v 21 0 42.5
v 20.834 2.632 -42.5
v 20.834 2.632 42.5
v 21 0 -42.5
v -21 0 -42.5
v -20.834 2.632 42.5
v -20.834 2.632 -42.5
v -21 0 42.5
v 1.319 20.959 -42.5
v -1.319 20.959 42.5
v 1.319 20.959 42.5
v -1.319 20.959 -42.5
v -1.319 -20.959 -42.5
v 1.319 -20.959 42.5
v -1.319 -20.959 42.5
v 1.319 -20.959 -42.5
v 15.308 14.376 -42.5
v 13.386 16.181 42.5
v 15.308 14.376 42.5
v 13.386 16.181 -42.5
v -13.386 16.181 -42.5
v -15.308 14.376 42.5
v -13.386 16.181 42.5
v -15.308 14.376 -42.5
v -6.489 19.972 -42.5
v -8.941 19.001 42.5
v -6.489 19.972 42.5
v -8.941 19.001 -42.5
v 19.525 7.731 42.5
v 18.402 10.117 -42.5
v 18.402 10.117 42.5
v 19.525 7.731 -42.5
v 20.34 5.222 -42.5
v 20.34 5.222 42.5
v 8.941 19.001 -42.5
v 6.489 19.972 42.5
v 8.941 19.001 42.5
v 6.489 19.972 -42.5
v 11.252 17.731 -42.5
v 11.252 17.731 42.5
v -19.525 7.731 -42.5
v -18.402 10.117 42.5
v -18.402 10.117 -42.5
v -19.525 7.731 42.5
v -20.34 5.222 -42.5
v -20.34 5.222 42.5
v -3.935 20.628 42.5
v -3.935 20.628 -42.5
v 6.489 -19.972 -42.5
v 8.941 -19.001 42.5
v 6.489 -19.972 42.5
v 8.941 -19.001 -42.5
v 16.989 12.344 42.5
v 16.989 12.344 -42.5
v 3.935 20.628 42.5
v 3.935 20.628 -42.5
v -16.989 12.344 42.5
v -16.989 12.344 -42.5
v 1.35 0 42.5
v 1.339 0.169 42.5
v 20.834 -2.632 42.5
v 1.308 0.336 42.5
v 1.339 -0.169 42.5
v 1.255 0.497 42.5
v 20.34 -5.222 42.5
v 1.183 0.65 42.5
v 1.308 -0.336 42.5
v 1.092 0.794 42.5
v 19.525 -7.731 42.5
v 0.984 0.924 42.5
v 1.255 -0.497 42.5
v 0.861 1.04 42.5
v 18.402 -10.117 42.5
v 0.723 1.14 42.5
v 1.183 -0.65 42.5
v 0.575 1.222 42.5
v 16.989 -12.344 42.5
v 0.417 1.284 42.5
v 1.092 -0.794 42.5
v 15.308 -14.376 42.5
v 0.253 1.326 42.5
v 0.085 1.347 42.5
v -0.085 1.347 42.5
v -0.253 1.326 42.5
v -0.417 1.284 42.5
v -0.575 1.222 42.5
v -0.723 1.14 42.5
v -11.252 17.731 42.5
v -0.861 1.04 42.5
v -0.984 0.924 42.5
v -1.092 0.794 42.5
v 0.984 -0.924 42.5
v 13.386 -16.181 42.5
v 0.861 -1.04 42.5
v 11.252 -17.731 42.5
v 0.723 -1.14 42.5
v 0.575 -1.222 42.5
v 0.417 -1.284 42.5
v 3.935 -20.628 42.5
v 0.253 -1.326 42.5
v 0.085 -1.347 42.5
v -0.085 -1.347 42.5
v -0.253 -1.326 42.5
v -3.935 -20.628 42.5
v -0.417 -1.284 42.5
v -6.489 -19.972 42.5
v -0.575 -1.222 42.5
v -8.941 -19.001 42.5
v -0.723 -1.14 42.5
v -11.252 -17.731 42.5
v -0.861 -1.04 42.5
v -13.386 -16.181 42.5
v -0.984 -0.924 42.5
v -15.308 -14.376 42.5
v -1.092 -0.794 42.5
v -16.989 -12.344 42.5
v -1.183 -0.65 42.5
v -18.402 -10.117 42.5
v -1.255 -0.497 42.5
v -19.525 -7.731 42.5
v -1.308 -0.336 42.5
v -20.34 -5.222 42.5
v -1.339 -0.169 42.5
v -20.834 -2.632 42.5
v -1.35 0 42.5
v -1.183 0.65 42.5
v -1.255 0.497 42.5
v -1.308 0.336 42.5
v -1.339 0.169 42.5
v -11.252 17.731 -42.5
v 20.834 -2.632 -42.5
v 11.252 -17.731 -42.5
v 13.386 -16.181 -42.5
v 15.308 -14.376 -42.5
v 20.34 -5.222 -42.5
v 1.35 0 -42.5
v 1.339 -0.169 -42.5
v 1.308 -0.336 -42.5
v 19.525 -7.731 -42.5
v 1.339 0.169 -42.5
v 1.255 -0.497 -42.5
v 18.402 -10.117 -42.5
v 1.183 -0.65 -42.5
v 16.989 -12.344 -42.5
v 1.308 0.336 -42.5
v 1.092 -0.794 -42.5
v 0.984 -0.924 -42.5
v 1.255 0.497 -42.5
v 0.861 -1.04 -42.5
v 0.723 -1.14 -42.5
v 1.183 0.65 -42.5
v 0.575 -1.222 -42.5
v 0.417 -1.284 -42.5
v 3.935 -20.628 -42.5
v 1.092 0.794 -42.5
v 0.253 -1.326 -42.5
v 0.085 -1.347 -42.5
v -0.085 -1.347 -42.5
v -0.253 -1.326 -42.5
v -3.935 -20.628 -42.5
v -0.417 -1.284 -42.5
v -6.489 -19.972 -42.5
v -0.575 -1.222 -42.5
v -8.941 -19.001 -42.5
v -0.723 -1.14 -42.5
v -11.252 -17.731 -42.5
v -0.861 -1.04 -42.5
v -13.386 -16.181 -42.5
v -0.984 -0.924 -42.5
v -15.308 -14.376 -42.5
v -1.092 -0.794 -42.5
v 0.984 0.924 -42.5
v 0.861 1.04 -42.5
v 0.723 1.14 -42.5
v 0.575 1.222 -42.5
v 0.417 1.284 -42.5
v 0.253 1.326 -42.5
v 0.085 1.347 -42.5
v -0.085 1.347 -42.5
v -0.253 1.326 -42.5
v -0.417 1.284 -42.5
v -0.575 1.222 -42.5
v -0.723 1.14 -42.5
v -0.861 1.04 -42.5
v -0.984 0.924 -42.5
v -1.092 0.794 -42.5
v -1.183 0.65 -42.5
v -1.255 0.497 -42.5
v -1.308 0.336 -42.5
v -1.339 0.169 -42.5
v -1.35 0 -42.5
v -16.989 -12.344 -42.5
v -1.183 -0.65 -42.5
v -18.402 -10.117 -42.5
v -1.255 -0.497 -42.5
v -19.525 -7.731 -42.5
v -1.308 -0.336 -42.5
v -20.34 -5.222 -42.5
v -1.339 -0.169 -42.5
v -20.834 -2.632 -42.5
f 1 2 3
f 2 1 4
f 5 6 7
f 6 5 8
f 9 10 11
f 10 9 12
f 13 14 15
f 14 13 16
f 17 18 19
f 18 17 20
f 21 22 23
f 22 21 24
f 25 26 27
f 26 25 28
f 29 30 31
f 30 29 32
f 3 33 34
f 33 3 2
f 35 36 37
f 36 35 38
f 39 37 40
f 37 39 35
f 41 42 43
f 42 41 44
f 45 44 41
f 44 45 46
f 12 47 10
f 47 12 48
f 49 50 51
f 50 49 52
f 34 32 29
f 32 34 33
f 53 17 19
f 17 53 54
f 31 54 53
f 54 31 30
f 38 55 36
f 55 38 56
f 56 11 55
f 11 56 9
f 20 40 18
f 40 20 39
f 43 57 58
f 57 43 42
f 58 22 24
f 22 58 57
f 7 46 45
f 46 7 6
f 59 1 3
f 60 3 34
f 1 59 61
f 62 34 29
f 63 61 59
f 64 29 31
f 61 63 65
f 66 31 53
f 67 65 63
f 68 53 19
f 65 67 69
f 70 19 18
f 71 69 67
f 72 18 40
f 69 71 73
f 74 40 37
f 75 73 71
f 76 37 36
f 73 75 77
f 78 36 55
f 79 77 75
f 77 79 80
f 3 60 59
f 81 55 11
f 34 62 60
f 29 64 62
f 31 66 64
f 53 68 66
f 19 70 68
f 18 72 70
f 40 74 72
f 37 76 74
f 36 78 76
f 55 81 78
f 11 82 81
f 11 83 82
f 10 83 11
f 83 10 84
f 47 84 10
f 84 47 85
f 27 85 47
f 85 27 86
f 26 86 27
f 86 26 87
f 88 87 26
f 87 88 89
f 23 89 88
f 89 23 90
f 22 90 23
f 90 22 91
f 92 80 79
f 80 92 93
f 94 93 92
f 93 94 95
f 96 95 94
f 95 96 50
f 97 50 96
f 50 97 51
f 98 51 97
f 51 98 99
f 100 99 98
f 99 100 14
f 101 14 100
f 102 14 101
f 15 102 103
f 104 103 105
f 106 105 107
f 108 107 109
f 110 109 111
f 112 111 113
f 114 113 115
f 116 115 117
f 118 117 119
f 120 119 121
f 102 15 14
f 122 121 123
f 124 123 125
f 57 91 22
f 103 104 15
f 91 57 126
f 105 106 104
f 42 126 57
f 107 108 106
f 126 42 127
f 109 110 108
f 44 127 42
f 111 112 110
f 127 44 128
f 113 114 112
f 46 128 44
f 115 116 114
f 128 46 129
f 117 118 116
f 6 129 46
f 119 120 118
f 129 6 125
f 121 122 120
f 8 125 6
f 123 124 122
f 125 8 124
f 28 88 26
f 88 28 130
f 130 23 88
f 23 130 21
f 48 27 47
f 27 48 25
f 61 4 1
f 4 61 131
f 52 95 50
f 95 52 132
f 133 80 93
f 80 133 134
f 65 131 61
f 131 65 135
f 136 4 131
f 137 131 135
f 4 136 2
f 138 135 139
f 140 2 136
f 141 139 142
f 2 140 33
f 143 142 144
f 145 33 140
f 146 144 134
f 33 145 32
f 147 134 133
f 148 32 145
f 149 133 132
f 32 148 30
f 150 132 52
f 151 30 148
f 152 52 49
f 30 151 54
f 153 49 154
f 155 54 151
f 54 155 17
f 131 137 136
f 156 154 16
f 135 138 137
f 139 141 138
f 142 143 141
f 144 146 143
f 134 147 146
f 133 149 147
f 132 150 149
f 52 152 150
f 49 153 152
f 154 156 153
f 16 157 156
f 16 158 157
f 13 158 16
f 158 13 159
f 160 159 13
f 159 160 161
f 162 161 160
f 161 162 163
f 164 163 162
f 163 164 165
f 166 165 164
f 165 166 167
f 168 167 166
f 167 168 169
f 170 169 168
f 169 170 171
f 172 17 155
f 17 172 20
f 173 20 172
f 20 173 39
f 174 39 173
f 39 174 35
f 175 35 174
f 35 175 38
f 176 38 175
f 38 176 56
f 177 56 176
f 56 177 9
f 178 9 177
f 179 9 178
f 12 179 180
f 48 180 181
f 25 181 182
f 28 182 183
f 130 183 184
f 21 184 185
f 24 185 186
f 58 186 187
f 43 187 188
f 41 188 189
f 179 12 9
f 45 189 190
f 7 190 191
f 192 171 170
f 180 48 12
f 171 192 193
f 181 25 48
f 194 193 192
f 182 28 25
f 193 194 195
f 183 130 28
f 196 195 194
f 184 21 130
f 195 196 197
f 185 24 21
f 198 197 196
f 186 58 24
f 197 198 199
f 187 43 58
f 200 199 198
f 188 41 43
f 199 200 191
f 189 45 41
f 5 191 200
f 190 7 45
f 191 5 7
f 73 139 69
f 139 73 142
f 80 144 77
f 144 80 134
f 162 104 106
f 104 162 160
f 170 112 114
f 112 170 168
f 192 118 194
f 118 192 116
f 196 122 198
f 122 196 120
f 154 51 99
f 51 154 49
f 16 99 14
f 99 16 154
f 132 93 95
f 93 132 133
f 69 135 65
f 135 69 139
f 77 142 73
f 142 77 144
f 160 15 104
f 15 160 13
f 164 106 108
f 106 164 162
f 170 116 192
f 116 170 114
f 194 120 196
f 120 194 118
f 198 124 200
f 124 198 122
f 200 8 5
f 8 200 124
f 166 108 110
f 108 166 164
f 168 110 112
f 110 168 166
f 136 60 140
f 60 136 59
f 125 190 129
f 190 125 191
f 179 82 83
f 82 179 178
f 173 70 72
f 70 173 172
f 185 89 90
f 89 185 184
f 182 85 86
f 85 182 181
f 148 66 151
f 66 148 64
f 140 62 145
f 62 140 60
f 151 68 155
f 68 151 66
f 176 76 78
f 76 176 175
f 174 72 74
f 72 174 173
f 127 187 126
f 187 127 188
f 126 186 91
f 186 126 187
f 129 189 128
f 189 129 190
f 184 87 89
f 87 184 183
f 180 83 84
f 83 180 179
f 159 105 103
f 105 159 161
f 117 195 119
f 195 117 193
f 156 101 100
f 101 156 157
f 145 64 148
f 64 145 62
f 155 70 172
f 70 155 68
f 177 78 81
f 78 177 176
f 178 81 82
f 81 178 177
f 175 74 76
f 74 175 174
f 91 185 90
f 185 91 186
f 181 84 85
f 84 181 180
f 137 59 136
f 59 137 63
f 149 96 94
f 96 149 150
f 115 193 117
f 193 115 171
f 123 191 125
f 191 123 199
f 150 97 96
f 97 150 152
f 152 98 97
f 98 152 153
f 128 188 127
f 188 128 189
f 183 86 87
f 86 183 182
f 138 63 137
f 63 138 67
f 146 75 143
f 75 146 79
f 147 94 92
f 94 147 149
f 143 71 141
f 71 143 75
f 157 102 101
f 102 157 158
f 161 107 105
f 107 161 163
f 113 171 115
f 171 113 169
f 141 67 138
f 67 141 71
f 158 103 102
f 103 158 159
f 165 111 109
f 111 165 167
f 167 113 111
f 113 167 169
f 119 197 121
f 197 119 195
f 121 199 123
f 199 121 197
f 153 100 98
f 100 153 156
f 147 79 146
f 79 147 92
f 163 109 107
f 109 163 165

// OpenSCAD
$fn = 50;


difference() {
	union() {
		translate(v = [0, 0, -42.5000000000]) {
			cylinder(h = 85, r = 21.0000000000);
		}
	}
	union() {
		translate(v = [0, 0, -100.0000000000]) {
			cylinder(h = 200, r = 1.3500000000);
		}
	}
}
